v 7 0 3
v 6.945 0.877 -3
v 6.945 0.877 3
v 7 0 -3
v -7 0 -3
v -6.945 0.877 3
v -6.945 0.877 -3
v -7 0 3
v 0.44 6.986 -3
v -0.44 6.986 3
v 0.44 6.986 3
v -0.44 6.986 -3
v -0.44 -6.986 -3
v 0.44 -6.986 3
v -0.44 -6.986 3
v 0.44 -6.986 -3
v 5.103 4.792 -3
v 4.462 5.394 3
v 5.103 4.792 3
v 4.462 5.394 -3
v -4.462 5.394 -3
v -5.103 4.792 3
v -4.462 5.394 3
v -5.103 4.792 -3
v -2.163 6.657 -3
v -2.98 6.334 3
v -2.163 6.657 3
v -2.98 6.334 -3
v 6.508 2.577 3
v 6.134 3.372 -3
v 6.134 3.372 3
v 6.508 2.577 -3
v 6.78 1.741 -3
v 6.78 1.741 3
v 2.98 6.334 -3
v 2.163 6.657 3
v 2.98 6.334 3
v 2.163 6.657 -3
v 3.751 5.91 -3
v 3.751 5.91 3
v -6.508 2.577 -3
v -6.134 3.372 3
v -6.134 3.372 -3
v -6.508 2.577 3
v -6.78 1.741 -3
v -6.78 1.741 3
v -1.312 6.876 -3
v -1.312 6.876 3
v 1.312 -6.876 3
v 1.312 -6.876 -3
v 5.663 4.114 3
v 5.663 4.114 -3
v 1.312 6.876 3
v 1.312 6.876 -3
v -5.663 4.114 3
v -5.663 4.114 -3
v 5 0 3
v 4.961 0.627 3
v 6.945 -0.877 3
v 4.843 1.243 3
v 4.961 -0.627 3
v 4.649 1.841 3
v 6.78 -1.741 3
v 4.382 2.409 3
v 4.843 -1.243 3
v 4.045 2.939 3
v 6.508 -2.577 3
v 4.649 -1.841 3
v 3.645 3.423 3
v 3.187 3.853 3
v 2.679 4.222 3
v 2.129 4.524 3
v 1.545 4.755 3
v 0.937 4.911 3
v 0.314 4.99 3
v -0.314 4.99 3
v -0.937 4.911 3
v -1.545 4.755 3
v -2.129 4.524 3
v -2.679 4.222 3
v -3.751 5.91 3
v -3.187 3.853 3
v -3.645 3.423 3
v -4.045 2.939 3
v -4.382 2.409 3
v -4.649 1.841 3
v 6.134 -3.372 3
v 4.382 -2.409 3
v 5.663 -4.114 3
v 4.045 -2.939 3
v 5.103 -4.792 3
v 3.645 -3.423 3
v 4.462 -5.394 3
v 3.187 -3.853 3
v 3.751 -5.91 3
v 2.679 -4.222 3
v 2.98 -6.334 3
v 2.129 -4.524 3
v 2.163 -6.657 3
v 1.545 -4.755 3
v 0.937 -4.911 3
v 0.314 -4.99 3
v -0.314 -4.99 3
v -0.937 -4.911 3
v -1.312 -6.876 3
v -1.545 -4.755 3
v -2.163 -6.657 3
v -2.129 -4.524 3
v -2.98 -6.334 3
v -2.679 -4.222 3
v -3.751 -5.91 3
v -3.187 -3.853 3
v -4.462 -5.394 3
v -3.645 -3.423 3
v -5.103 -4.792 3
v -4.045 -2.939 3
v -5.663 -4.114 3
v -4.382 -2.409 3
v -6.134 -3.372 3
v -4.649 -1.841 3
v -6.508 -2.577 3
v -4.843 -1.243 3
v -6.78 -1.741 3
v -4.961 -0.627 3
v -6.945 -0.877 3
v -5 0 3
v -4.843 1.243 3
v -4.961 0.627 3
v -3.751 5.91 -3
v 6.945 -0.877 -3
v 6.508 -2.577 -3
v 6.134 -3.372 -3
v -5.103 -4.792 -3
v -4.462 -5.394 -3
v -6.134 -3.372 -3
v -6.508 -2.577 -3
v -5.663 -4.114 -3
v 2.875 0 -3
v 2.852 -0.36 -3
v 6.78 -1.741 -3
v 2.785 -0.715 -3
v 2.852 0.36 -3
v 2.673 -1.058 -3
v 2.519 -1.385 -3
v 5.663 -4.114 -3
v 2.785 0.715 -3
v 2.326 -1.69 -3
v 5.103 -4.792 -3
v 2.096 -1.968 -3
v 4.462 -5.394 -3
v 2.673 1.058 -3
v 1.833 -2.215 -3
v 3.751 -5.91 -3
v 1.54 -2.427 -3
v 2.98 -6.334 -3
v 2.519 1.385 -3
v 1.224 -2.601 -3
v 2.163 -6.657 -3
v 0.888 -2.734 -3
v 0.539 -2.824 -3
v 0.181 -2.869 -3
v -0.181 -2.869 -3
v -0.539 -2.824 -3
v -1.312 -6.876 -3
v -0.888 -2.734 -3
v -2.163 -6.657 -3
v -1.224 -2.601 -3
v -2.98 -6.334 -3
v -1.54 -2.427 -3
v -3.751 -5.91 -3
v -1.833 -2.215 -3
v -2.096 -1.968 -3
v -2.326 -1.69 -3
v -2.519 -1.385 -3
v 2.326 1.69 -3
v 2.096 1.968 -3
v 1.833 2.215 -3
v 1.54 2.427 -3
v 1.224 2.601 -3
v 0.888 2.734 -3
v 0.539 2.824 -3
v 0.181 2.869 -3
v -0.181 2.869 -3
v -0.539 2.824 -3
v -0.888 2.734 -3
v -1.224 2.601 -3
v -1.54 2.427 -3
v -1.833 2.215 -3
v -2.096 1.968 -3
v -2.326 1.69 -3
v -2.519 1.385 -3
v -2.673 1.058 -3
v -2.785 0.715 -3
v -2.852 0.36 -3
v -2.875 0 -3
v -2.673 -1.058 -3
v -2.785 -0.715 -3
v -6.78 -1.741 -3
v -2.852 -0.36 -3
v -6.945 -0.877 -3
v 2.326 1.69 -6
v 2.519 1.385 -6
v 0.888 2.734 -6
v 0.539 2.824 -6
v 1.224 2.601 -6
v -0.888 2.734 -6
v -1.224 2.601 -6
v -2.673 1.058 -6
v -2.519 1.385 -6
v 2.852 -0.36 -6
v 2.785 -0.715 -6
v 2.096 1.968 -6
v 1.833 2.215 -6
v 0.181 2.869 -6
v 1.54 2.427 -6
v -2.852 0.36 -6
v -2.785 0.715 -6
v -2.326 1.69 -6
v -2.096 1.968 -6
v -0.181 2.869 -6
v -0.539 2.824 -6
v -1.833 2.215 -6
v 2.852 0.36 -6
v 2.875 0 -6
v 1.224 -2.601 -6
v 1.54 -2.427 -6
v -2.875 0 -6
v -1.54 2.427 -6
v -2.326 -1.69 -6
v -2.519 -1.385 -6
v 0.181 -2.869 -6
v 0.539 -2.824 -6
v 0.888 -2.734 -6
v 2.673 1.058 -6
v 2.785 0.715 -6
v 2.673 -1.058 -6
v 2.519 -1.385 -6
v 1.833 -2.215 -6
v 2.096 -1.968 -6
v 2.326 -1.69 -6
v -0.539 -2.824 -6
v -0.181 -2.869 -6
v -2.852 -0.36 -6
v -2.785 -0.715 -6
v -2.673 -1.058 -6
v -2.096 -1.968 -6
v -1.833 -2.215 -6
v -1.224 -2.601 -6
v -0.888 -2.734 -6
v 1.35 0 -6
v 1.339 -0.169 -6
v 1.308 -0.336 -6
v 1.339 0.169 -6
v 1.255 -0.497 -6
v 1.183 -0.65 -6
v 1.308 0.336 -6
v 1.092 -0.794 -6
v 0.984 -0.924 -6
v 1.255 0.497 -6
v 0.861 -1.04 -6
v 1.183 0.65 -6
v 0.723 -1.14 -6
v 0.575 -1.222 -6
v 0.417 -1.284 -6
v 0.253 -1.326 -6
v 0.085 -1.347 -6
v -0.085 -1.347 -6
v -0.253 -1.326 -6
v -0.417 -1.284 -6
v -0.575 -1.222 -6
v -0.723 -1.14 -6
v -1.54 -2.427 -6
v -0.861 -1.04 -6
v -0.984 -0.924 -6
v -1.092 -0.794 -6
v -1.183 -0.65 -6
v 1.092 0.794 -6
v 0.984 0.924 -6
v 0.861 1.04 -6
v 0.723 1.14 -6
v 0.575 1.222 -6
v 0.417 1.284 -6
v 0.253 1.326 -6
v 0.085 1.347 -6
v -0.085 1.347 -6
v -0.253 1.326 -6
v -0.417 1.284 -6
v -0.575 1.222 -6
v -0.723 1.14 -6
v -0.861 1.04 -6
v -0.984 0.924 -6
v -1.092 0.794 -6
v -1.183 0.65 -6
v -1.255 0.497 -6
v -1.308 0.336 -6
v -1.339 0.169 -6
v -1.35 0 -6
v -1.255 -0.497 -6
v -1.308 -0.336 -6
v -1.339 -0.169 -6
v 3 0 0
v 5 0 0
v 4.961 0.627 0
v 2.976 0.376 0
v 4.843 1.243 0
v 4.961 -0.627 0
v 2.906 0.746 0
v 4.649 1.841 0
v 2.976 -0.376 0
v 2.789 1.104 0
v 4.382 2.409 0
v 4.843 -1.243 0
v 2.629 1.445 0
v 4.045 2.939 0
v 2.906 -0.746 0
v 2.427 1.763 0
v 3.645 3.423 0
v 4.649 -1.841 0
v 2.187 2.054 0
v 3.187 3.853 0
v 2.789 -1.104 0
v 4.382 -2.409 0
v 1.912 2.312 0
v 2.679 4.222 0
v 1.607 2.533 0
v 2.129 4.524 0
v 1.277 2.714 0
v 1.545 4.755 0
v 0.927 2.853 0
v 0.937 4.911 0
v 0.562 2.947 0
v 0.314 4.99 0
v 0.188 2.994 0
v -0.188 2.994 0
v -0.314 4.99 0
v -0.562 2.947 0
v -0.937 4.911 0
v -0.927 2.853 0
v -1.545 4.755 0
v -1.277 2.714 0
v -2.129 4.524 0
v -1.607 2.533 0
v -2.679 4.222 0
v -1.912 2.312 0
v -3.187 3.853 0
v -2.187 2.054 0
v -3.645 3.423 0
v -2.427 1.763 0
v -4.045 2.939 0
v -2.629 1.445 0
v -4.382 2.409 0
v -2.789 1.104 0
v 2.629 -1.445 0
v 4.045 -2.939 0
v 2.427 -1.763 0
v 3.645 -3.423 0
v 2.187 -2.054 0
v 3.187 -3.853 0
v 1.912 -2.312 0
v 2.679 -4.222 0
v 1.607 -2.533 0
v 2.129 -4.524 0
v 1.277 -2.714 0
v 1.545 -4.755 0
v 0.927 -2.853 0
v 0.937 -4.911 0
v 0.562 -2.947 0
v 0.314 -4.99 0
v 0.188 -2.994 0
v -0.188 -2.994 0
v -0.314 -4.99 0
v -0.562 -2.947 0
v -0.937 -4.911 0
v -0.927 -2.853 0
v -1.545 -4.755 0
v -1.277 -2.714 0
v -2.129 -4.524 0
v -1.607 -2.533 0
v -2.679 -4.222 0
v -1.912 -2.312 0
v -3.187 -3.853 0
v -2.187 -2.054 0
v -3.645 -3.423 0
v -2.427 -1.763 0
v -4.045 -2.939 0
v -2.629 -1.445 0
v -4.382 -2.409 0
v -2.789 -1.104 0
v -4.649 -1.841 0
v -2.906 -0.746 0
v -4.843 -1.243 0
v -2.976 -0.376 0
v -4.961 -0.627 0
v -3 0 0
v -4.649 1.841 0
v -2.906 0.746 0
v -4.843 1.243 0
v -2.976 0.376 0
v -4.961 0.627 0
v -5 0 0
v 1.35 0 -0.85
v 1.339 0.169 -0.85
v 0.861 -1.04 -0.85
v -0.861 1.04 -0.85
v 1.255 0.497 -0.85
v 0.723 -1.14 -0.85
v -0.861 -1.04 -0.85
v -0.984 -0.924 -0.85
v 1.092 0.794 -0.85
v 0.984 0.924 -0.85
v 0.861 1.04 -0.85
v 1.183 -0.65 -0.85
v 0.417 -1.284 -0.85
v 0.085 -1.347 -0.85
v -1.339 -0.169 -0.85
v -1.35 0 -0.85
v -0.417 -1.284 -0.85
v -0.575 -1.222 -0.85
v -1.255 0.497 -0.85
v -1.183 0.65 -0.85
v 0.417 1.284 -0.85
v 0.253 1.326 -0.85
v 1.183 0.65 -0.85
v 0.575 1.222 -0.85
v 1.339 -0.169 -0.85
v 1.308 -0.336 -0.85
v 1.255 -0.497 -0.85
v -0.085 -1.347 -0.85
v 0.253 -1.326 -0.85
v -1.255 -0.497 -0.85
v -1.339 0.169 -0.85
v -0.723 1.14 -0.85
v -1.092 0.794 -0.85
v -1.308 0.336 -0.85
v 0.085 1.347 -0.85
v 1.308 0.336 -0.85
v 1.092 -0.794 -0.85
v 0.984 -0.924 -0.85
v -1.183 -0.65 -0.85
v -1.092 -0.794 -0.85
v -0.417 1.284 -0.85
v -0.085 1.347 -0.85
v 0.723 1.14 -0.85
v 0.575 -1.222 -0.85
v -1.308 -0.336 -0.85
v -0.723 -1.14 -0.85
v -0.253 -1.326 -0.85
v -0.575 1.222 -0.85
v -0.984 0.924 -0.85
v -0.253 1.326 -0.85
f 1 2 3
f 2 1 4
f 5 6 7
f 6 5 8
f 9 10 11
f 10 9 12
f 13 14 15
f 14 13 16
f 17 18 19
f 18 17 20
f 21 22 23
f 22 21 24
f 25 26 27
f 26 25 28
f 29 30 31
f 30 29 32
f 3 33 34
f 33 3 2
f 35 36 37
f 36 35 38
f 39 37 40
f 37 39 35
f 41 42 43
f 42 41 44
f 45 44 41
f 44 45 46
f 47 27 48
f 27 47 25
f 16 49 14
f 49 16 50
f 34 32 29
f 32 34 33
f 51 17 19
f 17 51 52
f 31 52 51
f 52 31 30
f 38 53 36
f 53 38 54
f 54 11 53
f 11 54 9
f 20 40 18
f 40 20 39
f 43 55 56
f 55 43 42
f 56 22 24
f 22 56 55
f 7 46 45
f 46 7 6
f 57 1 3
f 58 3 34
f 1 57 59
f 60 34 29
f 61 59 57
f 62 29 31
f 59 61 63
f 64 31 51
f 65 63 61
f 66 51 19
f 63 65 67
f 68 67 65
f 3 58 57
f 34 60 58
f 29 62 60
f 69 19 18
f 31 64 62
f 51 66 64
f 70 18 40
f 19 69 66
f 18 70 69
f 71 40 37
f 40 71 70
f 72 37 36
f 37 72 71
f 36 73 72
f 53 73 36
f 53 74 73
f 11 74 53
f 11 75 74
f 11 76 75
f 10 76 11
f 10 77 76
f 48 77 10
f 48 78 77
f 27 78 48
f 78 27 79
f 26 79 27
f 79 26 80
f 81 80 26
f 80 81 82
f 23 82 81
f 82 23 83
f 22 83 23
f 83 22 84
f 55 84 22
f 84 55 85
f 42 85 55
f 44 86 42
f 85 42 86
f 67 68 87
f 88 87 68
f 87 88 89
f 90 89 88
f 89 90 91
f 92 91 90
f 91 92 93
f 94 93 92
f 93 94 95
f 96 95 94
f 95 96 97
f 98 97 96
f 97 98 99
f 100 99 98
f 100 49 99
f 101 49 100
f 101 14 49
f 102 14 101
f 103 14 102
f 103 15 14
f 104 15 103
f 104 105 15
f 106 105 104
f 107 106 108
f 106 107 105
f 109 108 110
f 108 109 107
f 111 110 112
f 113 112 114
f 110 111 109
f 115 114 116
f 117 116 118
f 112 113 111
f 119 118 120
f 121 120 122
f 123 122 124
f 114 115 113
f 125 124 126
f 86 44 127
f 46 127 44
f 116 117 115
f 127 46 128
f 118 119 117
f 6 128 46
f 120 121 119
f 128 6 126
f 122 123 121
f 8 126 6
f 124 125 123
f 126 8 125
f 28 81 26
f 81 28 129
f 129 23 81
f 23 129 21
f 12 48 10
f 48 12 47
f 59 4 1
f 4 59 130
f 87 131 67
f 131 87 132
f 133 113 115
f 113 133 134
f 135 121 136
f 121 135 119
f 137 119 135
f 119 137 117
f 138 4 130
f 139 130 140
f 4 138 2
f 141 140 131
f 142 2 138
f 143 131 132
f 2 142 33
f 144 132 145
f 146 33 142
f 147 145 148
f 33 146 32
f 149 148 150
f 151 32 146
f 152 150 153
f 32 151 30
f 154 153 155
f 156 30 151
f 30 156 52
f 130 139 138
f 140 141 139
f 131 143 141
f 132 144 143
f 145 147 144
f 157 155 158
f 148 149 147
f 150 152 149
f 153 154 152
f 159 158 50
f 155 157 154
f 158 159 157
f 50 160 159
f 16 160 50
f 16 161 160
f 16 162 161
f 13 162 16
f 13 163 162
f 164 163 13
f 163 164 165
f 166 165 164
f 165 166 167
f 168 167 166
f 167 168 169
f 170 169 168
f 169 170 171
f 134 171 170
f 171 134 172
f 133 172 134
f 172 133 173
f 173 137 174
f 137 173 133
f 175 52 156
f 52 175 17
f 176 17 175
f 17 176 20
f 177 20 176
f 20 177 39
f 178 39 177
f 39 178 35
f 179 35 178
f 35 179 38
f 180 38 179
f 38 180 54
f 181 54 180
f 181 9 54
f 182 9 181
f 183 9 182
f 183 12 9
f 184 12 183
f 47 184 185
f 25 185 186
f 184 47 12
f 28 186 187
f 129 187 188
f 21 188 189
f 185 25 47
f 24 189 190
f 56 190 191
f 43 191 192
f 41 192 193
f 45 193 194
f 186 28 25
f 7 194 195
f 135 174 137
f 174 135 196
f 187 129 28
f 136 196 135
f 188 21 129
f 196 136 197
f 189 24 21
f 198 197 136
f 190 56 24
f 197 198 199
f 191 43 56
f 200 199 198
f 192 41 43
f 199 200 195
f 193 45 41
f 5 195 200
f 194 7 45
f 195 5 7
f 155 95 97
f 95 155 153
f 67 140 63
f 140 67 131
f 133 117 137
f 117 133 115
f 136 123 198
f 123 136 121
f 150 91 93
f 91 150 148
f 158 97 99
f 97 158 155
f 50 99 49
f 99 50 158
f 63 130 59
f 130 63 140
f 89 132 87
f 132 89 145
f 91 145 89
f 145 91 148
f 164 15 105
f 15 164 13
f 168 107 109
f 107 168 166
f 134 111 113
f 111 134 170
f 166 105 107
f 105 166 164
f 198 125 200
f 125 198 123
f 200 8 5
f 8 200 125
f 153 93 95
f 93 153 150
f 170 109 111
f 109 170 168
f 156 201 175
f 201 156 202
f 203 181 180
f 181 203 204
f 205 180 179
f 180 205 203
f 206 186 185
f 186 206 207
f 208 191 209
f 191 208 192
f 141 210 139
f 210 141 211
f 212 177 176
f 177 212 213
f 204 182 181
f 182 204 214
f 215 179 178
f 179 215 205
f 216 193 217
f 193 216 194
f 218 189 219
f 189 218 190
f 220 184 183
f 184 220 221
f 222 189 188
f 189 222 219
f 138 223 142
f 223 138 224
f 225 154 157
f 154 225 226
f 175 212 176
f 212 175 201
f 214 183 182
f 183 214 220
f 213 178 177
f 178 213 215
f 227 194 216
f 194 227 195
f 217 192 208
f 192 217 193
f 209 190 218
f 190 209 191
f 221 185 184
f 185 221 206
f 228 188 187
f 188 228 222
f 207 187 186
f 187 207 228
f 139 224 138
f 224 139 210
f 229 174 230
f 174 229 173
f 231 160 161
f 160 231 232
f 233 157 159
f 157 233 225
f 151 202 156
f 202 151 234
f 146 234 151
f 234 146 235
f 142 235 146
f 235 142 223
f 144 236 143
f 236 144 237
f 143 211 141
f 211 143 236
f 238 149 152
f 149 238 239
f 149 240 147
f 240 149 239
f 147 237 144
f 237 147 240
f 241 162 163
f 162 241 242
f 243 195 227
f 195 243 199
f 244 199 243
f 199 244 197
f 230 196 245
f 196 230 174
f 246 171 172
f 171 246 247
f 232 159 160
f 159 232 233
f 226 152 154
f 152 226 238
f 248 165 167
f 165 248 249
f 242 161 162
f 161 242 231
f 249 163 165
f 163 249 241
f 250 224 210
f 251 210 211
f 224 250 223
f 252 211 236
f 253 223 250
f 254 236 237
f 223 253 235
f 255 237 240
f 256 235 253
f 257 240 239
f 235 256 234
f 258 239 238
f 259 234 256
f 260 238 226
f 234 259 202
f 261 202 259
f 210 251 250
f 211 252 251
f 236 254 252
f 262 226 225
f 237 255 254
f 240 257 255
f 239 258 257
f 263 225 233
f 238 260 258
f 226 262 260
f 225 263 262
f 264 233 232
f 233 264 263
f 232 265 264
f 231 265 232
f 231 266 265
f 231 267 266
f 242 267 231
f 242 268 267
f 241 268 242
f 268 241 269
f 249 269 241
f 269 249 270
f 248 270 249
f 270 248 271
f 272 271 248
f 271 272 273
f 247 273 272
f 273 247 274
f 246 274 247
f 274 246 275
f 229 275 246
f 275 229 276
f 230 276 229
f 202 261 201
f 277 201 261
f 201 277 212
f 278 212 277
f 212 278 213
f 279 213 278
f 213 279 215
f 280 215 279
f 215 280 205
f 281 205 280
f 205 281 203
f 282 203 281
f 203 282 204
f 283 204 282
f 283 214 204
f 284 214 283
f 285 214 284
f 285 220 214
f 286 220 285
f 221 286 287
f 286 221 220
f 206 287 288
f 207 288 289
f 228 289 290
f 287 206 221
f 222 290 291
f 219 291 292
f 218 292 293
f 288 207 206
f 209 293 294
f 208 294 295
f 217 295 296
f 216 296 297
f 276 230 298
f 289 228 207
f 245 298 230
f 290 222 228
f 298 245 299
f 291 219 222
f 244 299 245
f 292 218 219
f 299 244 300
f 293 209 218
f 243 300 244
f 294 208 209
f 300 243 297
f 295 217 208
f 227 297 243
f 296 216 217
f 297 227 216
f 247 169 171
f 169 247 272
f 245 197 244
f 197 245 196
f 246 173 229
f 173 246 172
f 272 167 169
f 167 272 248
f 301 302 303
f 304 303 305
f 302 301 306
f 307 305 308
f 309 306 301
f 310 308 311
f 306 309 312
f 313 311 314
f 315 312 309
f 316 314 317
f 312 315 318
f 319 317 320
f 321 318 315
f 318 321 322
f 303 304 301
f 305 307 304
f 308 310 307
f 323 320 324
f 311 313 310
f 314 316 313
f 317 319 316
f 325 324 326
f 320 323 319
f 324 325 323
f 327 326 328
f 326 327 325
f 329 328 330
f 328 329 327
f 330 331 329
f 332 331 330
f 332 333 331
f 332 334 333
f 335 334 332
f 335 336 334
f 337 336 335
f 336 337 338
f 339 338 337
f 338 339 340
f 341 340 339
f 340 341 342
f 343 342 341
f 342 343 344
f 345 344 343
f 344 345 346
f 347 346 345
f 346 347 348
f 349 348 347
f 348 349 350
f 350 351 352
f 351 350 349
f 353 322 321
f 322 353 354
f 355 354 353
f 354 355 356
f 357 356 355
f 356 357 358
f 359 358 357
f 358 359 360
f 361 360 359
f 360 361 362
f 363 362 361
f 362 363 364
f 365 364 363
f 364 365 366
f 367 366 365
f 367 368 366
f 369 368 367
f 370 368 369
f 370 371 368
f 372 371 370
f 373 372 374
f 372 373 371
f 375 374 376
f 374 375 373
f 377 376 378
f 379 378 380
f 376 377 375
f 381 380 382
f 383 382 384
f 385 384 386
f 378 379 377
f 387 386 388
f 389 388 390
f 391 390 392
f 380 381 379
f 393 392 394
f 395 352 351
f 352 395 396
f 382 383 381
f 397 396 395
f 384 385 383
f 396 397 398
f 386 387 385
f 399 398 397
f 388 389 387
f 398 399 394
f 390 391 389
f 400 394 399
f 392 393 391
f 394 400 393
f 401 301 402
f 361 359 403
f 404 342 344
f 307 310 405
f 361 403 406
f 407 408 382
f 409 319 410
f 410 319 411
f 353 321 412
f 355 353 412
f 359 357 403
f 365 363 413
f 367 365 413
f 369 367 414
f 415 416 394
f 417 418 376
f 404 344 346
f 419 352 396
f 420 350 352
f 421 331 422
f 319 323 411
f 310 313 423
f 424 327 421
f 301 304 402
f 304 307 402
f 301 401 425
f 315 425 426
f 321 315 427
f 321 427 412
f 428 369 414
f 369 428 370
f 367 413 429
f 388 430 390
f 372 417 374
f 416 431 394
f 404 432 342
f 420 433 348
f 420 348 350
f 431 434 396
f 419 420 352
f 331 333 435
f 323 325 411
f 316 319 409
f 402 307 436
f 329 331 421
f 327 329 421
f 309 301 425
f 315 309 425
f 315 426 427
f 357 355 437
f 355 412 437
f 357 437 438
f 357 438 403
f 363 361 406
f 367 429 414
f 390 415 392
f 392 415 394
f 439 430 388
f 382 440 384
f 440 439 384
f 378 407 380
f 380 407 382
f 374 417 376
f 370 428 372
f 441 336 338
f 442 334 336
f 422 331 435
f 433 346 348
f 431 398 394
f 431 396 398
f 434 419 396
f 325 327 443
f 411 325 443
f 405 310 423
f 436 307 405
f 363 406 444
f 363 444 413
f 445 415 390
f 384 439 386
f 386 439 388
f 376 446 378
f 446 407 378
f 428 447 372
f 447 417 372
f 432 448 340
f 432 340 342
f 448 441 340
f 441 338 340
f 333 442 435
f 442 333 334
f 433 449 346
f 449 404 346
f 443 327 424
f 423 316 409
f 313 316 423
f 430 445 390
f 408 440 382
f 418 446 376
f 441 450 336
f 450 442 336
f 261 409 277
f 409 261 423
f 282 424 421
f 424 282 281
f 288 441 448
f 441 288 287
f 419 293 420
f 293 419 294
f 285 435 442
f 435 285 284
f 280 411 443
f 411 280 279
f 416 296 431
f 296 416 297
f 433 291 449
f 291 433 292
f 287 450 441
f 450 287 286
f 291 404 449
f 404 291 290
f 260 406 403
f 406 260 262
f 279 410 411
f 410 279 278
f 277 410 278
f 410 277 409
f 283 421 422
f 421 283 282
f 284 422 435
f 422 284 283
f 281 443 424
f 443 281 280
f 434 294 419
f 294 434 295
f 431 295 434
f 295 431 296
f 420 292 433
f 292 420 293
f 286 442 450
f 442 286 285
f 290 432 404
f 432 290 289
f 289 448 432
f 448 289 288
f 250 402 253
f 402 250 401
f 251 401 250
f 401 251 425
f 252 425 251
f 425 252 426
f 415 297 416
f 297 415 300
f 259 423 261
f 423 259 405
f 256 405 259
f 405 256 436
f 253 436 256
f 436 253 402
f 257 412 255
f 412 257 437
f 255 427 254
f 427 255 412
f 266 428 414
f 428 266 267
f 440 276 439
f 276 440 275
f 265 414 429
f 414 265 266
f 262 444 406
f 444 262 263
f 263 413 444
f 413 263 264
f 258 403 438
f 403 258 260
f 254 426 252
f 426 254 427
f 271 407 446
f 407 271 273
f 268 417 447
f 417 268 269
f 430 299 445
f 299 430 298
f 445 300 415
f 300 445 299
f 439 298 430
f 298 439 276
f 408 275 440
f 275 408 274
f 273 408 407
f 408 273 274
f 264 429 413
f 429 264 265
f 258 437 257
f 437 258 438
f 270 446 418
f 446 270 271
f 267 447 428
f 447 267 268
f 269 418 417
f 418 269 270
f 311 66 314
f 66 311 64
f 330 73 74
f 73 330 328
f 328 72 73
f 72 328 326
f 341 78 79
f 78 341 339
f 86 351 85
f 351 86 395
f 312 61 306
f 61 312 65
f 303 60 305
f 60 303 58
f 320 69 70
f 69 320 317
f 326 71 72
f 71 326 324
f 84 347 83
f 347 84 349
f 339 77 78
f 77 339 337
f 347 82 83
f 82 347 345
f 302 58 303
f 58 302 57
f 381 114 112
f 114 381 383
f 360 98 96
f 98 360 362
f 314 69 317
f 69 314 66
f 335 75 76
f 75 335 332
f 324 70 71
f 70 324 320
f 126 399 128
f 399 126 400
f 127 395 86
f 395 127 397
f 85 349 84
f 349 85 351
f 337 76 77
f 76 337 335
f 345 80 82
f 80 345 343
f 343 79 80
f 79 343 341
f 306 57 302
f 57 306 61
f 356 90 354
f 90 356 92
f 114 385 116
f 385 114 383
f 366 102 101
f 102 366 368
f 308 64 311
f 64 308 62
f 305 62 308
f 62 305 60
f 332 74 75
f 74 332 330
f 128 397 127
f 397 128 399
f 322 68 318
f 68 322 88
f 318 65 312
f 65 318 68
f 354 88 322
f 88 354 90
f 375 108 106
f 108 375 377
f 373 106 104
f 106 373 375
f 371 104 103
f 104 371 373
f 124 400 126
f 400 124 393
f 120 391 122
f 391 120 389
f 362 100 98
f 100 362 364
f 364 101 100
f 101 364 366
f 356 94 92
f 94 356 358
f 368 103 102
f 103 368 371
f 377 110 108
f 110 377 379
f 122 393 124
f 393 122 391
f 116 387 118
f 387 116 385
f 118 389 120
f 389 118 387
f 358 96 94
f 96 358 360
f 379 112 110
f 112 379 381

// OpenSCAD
$fn = 50;


difference() {
	union() {
		translate(v = [0, 0, -3.0000000000]) {
			cylinder(h = 6, r = 7.0000000000);
		}
		#translate(v = [0, 0, -6.0000000000]) {
			cylinder(h = 6, r = 2.8750000000);
		}
	}
	union() {
		translate(v = [0, 0, 0]) {
			rotate(a = [0, 0, 0]) {
				difference() {
					union() {
						translate(v = [0, 0, -6.0000000000]) {
							cylinder(h = 6, r = 1.0000000000);
						}
						translate(v = [0, 0, -0.8500000000]) {
							cylinder(h = 0.8500000000, r1 = 1.3500000000, r2 = 3.0000000000);
						}
						translate(v = [0, 0, -6.0000000000]) {
							cylinder(h = 6, r = 1.3500000000);
						}
						translate(v = [0, 0, -6.0000000000]) {
							cylinder(h = 6, r = 1.0000000000);
						}
					}
					union();
				}
			}
		}
		#cylinder(h = 3, r = 5.0000000000);
	}
}
